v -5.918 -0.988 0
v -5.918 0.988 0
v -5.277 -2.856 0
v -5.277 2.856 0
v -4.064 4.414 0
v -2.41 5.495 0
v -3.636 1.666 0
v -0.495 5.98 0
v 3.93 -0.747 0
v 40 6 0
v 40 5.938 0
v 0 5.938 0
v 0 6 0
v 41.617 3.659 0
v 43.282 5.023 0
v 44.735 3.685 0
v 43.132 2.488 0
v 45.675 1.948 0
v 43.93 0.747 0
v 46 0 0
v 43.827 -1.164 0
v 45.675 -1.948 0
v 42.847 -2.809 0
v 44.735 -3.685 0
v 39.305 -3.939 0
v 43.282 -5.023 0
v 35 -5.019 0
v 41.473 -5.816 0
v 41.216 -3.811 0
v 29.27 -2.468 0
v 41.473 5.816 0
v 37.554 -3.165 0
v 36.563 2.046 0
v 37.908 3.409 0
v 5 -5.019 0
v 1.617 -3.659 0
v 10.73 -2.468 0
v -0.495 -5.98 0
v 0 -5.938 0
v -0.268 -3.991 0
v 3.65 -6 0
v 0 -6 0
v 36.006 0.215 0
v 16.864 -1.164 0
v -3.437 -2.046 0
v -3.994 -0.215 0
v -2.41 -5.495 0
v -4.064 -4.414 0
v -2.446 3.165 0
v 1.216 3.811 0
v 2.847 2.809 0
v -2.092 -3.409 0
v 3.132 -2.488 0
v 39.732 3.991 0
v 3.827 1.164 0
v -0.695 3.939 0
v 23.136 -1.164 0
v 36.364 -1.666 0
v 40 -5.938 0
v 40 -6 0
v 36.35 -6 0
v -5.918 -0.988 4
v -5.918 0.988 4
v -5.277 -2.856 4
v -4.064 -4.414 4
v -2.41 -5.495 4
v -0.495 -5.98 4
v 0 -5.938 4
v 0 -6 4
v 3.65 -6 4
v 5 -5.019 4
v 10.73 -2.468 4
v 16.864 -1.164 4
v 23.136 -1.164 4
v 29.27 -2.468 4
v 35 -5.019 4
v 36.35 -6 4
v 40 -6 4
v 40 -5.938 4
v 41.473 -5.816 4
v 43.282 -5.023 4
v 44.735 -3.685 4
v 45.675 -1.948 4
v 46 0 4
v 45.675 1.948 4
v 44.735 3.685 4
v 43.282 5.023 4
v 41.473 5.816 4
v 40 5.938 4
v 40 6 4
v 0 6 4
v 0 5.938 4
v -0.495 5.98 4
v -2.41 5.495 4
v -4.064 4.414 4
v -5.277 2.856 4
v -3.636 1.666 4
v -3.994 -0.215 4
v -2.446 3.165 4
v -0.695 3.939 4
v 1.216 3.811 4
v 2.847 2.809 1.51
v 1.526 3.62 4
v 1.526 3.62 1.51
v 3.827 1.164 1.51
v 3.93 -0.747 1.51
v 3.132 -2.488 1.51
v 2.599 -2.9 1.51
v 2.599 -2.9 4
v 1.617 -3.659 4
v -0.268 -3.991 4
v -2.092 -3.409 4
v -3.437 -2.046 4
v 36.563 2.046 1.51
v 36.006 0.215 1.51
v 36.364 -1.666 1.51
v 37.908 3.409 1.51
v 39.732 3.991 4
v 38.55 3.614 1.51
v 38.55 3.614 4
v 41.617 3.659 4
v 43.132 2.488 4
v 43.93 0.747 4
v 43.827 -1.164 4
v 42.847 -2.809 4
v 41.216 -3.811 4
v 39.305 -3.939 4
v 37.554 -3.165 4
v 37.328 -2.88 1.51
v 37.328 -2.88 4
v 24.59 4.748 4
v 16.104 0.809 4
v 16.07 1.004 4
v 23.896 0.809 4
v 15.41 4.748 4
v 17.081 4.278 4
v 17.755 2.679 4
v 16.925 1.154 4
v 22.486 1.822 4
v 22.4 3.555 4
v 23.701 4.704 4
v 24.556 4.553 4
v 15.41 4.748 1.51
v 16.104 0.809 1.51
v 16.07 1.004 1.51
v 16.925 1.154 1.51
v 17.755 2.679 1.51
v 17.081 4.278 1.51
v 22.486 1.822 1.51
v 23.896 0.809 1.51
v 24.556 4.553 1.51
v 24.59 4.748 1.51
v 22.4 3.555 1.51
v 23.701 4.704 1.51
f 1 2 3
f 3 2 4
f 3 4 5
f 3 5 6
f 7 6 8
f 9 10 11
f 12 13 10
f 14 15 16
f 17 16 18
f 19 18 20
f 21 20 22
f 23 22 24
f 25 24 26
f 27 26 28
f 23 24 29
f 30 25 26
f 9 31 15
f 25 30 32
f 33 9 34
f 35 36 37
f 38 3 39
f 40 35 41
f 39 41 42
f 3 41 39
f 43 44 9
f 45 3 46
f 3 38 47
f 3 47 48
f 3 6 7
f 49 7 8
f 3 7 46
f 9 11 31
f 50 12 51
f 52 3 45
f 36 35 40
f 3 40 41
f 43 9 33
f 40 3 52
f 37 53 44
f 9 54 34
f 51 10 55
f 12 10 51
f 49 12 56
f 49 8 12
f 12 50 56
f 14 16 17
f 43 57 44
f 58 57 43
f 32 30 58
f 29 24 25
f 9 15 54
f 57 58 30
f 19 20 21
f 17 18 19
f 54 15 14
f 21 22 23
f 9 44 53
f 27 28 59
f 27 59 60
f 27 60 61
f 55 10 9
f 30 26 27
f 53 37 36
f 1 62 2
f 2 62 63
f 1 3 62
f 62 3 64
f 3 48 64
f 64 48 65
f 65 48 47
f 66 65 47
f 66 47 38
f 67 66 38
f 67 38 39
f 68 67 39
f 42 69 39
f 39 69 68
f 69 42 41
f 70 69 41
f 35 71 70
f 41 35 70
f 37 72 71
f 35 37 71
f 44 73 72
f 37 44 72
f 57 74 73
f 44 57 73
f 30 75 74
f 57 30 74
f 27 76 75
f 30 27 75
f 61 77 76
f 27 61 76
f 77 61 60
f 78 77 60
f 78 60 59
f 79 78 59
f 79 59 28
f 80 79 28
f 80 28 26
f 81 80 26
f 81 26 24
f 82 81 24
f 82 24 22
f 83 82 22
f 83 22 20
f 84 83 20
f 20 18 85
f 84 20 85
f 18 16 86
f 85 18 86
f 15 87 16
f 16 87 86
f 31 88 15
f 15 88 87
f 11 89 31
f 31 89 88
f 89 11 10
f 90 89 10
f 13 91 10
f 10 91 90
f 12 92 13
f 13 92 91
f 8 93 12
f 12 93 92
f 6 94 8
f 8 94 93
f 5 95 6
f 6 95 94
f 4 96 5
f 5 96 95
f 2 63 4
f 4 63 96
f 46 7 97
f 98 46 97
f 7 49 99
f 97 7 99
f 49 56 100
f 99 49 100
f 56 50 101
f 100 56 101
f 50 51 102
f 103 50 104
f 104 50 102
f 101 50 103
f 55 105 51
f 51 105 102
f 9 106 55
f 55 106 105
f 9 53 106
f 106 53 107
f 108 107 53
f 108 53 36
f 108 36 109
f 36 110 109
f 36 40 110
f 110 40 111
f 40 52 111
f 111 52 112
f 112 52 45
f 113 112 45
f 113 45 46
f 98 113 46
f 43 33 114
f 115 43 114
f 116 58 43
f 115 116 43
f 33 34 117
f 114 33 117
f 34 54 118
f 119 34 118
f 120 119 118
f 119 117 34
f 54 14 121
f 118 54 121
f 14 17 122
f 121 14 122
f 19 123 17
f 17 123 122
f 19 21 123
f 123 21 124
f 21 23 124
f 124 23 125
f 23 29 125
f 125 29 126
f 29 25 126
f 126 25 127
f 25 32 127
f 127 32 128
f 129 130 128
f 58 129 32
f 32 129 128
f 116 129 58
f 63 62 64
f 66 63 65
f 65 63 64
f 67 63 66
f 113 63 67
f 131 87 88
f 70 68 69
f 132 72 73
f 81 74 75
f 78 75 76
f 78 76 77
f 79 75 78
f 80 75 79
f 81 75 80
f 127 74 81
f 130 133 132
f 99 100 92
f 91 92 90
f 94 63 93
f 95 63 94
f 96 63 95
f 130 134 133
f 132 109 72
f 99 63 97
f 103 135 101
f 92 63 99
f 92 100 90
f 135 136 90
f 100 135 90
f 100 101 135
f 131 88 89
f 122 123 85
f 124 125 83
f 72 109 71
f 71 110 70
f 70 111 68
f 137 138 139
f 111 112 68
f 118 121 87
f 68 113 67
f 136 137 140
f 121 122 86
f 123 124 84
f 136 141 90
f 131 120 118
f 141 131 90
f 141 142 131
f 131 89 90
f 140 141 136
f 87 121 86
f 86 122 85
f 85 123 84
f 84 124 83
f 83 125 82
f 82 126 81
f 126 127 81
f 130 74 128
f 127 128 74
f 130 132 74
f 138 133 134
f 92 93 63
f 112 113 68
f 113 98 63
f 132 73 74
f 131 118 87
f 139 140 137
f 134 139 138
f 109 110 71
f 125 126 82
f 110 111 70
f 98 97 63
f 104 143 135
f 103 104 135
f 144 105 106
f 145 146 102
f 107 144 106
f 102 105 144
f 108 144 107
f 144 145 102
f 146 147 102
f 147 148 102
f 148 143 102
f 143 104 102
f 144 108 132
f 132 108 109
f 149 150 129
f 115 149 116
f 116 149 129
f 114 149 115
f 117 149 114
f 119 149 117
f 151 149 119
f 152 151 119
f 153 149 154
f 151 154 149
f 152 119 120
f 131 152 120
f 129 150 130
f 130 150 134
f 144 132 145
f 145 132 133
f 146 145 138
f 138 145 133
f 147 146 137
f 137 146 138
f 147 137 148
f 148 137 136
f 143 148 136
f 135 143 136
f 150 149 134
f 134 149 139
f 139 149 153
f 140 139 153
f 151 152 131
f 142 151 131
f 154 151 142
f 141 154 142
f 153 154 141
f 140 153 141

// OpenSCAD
// file: servo_arm.scad
module servo_arm(body_r = 8/2, arm_r1 = 7/2, arm_r2 = 4/2, arm_len = 16, arm_t = 2.5, body_t = 7) {
	cylinder(r = body_r, h = body_t);
	
	linear_extrude(height = arm_t) {
		circle(r = arm_r1);
		translate([0,arm_len,0]) circle(r = arm_r2);
		polygon(points = [ [-arm_r1, 0], [arm_r1, 0], [arm_r2, arm_len], [-arm_r2, arm_len] ]);
	}
}
// main file
// alternate femur

include <servo_arm.scad>;

module body(thickness, center_to_center, width) {
	difference() {
		translate([0,0,thickness/2]) union() {
			difference() {
				cube([center_to_center, width, thickness], center = true);
				translate([0,-31, -.1]) cylinder(r=30, h=thickness+.3, center = true);
			}
			for(x = [+center_to_center/2, -center_to_center/2]) 
				translate([x, 0, 0]) cylinder(r = width/2, h = thickness, center = true);
		}
	}

}


module femur(thickness = 4, center_to_center = 40, width = 12) {
	translate([center_to_center/2, 0, 0])
	difference() {
		body(thickness, center_to_center, width);
		color("red") translate([center_to_center/2,0,thickness + 0.01]) rotate([0, 180, 80]) servo_arm();
		color("red") translate([-center_to_center/2,0,thickness + 0.01]) rotate([0, 180, -80]) servo_arm();
	}
}

femur();
